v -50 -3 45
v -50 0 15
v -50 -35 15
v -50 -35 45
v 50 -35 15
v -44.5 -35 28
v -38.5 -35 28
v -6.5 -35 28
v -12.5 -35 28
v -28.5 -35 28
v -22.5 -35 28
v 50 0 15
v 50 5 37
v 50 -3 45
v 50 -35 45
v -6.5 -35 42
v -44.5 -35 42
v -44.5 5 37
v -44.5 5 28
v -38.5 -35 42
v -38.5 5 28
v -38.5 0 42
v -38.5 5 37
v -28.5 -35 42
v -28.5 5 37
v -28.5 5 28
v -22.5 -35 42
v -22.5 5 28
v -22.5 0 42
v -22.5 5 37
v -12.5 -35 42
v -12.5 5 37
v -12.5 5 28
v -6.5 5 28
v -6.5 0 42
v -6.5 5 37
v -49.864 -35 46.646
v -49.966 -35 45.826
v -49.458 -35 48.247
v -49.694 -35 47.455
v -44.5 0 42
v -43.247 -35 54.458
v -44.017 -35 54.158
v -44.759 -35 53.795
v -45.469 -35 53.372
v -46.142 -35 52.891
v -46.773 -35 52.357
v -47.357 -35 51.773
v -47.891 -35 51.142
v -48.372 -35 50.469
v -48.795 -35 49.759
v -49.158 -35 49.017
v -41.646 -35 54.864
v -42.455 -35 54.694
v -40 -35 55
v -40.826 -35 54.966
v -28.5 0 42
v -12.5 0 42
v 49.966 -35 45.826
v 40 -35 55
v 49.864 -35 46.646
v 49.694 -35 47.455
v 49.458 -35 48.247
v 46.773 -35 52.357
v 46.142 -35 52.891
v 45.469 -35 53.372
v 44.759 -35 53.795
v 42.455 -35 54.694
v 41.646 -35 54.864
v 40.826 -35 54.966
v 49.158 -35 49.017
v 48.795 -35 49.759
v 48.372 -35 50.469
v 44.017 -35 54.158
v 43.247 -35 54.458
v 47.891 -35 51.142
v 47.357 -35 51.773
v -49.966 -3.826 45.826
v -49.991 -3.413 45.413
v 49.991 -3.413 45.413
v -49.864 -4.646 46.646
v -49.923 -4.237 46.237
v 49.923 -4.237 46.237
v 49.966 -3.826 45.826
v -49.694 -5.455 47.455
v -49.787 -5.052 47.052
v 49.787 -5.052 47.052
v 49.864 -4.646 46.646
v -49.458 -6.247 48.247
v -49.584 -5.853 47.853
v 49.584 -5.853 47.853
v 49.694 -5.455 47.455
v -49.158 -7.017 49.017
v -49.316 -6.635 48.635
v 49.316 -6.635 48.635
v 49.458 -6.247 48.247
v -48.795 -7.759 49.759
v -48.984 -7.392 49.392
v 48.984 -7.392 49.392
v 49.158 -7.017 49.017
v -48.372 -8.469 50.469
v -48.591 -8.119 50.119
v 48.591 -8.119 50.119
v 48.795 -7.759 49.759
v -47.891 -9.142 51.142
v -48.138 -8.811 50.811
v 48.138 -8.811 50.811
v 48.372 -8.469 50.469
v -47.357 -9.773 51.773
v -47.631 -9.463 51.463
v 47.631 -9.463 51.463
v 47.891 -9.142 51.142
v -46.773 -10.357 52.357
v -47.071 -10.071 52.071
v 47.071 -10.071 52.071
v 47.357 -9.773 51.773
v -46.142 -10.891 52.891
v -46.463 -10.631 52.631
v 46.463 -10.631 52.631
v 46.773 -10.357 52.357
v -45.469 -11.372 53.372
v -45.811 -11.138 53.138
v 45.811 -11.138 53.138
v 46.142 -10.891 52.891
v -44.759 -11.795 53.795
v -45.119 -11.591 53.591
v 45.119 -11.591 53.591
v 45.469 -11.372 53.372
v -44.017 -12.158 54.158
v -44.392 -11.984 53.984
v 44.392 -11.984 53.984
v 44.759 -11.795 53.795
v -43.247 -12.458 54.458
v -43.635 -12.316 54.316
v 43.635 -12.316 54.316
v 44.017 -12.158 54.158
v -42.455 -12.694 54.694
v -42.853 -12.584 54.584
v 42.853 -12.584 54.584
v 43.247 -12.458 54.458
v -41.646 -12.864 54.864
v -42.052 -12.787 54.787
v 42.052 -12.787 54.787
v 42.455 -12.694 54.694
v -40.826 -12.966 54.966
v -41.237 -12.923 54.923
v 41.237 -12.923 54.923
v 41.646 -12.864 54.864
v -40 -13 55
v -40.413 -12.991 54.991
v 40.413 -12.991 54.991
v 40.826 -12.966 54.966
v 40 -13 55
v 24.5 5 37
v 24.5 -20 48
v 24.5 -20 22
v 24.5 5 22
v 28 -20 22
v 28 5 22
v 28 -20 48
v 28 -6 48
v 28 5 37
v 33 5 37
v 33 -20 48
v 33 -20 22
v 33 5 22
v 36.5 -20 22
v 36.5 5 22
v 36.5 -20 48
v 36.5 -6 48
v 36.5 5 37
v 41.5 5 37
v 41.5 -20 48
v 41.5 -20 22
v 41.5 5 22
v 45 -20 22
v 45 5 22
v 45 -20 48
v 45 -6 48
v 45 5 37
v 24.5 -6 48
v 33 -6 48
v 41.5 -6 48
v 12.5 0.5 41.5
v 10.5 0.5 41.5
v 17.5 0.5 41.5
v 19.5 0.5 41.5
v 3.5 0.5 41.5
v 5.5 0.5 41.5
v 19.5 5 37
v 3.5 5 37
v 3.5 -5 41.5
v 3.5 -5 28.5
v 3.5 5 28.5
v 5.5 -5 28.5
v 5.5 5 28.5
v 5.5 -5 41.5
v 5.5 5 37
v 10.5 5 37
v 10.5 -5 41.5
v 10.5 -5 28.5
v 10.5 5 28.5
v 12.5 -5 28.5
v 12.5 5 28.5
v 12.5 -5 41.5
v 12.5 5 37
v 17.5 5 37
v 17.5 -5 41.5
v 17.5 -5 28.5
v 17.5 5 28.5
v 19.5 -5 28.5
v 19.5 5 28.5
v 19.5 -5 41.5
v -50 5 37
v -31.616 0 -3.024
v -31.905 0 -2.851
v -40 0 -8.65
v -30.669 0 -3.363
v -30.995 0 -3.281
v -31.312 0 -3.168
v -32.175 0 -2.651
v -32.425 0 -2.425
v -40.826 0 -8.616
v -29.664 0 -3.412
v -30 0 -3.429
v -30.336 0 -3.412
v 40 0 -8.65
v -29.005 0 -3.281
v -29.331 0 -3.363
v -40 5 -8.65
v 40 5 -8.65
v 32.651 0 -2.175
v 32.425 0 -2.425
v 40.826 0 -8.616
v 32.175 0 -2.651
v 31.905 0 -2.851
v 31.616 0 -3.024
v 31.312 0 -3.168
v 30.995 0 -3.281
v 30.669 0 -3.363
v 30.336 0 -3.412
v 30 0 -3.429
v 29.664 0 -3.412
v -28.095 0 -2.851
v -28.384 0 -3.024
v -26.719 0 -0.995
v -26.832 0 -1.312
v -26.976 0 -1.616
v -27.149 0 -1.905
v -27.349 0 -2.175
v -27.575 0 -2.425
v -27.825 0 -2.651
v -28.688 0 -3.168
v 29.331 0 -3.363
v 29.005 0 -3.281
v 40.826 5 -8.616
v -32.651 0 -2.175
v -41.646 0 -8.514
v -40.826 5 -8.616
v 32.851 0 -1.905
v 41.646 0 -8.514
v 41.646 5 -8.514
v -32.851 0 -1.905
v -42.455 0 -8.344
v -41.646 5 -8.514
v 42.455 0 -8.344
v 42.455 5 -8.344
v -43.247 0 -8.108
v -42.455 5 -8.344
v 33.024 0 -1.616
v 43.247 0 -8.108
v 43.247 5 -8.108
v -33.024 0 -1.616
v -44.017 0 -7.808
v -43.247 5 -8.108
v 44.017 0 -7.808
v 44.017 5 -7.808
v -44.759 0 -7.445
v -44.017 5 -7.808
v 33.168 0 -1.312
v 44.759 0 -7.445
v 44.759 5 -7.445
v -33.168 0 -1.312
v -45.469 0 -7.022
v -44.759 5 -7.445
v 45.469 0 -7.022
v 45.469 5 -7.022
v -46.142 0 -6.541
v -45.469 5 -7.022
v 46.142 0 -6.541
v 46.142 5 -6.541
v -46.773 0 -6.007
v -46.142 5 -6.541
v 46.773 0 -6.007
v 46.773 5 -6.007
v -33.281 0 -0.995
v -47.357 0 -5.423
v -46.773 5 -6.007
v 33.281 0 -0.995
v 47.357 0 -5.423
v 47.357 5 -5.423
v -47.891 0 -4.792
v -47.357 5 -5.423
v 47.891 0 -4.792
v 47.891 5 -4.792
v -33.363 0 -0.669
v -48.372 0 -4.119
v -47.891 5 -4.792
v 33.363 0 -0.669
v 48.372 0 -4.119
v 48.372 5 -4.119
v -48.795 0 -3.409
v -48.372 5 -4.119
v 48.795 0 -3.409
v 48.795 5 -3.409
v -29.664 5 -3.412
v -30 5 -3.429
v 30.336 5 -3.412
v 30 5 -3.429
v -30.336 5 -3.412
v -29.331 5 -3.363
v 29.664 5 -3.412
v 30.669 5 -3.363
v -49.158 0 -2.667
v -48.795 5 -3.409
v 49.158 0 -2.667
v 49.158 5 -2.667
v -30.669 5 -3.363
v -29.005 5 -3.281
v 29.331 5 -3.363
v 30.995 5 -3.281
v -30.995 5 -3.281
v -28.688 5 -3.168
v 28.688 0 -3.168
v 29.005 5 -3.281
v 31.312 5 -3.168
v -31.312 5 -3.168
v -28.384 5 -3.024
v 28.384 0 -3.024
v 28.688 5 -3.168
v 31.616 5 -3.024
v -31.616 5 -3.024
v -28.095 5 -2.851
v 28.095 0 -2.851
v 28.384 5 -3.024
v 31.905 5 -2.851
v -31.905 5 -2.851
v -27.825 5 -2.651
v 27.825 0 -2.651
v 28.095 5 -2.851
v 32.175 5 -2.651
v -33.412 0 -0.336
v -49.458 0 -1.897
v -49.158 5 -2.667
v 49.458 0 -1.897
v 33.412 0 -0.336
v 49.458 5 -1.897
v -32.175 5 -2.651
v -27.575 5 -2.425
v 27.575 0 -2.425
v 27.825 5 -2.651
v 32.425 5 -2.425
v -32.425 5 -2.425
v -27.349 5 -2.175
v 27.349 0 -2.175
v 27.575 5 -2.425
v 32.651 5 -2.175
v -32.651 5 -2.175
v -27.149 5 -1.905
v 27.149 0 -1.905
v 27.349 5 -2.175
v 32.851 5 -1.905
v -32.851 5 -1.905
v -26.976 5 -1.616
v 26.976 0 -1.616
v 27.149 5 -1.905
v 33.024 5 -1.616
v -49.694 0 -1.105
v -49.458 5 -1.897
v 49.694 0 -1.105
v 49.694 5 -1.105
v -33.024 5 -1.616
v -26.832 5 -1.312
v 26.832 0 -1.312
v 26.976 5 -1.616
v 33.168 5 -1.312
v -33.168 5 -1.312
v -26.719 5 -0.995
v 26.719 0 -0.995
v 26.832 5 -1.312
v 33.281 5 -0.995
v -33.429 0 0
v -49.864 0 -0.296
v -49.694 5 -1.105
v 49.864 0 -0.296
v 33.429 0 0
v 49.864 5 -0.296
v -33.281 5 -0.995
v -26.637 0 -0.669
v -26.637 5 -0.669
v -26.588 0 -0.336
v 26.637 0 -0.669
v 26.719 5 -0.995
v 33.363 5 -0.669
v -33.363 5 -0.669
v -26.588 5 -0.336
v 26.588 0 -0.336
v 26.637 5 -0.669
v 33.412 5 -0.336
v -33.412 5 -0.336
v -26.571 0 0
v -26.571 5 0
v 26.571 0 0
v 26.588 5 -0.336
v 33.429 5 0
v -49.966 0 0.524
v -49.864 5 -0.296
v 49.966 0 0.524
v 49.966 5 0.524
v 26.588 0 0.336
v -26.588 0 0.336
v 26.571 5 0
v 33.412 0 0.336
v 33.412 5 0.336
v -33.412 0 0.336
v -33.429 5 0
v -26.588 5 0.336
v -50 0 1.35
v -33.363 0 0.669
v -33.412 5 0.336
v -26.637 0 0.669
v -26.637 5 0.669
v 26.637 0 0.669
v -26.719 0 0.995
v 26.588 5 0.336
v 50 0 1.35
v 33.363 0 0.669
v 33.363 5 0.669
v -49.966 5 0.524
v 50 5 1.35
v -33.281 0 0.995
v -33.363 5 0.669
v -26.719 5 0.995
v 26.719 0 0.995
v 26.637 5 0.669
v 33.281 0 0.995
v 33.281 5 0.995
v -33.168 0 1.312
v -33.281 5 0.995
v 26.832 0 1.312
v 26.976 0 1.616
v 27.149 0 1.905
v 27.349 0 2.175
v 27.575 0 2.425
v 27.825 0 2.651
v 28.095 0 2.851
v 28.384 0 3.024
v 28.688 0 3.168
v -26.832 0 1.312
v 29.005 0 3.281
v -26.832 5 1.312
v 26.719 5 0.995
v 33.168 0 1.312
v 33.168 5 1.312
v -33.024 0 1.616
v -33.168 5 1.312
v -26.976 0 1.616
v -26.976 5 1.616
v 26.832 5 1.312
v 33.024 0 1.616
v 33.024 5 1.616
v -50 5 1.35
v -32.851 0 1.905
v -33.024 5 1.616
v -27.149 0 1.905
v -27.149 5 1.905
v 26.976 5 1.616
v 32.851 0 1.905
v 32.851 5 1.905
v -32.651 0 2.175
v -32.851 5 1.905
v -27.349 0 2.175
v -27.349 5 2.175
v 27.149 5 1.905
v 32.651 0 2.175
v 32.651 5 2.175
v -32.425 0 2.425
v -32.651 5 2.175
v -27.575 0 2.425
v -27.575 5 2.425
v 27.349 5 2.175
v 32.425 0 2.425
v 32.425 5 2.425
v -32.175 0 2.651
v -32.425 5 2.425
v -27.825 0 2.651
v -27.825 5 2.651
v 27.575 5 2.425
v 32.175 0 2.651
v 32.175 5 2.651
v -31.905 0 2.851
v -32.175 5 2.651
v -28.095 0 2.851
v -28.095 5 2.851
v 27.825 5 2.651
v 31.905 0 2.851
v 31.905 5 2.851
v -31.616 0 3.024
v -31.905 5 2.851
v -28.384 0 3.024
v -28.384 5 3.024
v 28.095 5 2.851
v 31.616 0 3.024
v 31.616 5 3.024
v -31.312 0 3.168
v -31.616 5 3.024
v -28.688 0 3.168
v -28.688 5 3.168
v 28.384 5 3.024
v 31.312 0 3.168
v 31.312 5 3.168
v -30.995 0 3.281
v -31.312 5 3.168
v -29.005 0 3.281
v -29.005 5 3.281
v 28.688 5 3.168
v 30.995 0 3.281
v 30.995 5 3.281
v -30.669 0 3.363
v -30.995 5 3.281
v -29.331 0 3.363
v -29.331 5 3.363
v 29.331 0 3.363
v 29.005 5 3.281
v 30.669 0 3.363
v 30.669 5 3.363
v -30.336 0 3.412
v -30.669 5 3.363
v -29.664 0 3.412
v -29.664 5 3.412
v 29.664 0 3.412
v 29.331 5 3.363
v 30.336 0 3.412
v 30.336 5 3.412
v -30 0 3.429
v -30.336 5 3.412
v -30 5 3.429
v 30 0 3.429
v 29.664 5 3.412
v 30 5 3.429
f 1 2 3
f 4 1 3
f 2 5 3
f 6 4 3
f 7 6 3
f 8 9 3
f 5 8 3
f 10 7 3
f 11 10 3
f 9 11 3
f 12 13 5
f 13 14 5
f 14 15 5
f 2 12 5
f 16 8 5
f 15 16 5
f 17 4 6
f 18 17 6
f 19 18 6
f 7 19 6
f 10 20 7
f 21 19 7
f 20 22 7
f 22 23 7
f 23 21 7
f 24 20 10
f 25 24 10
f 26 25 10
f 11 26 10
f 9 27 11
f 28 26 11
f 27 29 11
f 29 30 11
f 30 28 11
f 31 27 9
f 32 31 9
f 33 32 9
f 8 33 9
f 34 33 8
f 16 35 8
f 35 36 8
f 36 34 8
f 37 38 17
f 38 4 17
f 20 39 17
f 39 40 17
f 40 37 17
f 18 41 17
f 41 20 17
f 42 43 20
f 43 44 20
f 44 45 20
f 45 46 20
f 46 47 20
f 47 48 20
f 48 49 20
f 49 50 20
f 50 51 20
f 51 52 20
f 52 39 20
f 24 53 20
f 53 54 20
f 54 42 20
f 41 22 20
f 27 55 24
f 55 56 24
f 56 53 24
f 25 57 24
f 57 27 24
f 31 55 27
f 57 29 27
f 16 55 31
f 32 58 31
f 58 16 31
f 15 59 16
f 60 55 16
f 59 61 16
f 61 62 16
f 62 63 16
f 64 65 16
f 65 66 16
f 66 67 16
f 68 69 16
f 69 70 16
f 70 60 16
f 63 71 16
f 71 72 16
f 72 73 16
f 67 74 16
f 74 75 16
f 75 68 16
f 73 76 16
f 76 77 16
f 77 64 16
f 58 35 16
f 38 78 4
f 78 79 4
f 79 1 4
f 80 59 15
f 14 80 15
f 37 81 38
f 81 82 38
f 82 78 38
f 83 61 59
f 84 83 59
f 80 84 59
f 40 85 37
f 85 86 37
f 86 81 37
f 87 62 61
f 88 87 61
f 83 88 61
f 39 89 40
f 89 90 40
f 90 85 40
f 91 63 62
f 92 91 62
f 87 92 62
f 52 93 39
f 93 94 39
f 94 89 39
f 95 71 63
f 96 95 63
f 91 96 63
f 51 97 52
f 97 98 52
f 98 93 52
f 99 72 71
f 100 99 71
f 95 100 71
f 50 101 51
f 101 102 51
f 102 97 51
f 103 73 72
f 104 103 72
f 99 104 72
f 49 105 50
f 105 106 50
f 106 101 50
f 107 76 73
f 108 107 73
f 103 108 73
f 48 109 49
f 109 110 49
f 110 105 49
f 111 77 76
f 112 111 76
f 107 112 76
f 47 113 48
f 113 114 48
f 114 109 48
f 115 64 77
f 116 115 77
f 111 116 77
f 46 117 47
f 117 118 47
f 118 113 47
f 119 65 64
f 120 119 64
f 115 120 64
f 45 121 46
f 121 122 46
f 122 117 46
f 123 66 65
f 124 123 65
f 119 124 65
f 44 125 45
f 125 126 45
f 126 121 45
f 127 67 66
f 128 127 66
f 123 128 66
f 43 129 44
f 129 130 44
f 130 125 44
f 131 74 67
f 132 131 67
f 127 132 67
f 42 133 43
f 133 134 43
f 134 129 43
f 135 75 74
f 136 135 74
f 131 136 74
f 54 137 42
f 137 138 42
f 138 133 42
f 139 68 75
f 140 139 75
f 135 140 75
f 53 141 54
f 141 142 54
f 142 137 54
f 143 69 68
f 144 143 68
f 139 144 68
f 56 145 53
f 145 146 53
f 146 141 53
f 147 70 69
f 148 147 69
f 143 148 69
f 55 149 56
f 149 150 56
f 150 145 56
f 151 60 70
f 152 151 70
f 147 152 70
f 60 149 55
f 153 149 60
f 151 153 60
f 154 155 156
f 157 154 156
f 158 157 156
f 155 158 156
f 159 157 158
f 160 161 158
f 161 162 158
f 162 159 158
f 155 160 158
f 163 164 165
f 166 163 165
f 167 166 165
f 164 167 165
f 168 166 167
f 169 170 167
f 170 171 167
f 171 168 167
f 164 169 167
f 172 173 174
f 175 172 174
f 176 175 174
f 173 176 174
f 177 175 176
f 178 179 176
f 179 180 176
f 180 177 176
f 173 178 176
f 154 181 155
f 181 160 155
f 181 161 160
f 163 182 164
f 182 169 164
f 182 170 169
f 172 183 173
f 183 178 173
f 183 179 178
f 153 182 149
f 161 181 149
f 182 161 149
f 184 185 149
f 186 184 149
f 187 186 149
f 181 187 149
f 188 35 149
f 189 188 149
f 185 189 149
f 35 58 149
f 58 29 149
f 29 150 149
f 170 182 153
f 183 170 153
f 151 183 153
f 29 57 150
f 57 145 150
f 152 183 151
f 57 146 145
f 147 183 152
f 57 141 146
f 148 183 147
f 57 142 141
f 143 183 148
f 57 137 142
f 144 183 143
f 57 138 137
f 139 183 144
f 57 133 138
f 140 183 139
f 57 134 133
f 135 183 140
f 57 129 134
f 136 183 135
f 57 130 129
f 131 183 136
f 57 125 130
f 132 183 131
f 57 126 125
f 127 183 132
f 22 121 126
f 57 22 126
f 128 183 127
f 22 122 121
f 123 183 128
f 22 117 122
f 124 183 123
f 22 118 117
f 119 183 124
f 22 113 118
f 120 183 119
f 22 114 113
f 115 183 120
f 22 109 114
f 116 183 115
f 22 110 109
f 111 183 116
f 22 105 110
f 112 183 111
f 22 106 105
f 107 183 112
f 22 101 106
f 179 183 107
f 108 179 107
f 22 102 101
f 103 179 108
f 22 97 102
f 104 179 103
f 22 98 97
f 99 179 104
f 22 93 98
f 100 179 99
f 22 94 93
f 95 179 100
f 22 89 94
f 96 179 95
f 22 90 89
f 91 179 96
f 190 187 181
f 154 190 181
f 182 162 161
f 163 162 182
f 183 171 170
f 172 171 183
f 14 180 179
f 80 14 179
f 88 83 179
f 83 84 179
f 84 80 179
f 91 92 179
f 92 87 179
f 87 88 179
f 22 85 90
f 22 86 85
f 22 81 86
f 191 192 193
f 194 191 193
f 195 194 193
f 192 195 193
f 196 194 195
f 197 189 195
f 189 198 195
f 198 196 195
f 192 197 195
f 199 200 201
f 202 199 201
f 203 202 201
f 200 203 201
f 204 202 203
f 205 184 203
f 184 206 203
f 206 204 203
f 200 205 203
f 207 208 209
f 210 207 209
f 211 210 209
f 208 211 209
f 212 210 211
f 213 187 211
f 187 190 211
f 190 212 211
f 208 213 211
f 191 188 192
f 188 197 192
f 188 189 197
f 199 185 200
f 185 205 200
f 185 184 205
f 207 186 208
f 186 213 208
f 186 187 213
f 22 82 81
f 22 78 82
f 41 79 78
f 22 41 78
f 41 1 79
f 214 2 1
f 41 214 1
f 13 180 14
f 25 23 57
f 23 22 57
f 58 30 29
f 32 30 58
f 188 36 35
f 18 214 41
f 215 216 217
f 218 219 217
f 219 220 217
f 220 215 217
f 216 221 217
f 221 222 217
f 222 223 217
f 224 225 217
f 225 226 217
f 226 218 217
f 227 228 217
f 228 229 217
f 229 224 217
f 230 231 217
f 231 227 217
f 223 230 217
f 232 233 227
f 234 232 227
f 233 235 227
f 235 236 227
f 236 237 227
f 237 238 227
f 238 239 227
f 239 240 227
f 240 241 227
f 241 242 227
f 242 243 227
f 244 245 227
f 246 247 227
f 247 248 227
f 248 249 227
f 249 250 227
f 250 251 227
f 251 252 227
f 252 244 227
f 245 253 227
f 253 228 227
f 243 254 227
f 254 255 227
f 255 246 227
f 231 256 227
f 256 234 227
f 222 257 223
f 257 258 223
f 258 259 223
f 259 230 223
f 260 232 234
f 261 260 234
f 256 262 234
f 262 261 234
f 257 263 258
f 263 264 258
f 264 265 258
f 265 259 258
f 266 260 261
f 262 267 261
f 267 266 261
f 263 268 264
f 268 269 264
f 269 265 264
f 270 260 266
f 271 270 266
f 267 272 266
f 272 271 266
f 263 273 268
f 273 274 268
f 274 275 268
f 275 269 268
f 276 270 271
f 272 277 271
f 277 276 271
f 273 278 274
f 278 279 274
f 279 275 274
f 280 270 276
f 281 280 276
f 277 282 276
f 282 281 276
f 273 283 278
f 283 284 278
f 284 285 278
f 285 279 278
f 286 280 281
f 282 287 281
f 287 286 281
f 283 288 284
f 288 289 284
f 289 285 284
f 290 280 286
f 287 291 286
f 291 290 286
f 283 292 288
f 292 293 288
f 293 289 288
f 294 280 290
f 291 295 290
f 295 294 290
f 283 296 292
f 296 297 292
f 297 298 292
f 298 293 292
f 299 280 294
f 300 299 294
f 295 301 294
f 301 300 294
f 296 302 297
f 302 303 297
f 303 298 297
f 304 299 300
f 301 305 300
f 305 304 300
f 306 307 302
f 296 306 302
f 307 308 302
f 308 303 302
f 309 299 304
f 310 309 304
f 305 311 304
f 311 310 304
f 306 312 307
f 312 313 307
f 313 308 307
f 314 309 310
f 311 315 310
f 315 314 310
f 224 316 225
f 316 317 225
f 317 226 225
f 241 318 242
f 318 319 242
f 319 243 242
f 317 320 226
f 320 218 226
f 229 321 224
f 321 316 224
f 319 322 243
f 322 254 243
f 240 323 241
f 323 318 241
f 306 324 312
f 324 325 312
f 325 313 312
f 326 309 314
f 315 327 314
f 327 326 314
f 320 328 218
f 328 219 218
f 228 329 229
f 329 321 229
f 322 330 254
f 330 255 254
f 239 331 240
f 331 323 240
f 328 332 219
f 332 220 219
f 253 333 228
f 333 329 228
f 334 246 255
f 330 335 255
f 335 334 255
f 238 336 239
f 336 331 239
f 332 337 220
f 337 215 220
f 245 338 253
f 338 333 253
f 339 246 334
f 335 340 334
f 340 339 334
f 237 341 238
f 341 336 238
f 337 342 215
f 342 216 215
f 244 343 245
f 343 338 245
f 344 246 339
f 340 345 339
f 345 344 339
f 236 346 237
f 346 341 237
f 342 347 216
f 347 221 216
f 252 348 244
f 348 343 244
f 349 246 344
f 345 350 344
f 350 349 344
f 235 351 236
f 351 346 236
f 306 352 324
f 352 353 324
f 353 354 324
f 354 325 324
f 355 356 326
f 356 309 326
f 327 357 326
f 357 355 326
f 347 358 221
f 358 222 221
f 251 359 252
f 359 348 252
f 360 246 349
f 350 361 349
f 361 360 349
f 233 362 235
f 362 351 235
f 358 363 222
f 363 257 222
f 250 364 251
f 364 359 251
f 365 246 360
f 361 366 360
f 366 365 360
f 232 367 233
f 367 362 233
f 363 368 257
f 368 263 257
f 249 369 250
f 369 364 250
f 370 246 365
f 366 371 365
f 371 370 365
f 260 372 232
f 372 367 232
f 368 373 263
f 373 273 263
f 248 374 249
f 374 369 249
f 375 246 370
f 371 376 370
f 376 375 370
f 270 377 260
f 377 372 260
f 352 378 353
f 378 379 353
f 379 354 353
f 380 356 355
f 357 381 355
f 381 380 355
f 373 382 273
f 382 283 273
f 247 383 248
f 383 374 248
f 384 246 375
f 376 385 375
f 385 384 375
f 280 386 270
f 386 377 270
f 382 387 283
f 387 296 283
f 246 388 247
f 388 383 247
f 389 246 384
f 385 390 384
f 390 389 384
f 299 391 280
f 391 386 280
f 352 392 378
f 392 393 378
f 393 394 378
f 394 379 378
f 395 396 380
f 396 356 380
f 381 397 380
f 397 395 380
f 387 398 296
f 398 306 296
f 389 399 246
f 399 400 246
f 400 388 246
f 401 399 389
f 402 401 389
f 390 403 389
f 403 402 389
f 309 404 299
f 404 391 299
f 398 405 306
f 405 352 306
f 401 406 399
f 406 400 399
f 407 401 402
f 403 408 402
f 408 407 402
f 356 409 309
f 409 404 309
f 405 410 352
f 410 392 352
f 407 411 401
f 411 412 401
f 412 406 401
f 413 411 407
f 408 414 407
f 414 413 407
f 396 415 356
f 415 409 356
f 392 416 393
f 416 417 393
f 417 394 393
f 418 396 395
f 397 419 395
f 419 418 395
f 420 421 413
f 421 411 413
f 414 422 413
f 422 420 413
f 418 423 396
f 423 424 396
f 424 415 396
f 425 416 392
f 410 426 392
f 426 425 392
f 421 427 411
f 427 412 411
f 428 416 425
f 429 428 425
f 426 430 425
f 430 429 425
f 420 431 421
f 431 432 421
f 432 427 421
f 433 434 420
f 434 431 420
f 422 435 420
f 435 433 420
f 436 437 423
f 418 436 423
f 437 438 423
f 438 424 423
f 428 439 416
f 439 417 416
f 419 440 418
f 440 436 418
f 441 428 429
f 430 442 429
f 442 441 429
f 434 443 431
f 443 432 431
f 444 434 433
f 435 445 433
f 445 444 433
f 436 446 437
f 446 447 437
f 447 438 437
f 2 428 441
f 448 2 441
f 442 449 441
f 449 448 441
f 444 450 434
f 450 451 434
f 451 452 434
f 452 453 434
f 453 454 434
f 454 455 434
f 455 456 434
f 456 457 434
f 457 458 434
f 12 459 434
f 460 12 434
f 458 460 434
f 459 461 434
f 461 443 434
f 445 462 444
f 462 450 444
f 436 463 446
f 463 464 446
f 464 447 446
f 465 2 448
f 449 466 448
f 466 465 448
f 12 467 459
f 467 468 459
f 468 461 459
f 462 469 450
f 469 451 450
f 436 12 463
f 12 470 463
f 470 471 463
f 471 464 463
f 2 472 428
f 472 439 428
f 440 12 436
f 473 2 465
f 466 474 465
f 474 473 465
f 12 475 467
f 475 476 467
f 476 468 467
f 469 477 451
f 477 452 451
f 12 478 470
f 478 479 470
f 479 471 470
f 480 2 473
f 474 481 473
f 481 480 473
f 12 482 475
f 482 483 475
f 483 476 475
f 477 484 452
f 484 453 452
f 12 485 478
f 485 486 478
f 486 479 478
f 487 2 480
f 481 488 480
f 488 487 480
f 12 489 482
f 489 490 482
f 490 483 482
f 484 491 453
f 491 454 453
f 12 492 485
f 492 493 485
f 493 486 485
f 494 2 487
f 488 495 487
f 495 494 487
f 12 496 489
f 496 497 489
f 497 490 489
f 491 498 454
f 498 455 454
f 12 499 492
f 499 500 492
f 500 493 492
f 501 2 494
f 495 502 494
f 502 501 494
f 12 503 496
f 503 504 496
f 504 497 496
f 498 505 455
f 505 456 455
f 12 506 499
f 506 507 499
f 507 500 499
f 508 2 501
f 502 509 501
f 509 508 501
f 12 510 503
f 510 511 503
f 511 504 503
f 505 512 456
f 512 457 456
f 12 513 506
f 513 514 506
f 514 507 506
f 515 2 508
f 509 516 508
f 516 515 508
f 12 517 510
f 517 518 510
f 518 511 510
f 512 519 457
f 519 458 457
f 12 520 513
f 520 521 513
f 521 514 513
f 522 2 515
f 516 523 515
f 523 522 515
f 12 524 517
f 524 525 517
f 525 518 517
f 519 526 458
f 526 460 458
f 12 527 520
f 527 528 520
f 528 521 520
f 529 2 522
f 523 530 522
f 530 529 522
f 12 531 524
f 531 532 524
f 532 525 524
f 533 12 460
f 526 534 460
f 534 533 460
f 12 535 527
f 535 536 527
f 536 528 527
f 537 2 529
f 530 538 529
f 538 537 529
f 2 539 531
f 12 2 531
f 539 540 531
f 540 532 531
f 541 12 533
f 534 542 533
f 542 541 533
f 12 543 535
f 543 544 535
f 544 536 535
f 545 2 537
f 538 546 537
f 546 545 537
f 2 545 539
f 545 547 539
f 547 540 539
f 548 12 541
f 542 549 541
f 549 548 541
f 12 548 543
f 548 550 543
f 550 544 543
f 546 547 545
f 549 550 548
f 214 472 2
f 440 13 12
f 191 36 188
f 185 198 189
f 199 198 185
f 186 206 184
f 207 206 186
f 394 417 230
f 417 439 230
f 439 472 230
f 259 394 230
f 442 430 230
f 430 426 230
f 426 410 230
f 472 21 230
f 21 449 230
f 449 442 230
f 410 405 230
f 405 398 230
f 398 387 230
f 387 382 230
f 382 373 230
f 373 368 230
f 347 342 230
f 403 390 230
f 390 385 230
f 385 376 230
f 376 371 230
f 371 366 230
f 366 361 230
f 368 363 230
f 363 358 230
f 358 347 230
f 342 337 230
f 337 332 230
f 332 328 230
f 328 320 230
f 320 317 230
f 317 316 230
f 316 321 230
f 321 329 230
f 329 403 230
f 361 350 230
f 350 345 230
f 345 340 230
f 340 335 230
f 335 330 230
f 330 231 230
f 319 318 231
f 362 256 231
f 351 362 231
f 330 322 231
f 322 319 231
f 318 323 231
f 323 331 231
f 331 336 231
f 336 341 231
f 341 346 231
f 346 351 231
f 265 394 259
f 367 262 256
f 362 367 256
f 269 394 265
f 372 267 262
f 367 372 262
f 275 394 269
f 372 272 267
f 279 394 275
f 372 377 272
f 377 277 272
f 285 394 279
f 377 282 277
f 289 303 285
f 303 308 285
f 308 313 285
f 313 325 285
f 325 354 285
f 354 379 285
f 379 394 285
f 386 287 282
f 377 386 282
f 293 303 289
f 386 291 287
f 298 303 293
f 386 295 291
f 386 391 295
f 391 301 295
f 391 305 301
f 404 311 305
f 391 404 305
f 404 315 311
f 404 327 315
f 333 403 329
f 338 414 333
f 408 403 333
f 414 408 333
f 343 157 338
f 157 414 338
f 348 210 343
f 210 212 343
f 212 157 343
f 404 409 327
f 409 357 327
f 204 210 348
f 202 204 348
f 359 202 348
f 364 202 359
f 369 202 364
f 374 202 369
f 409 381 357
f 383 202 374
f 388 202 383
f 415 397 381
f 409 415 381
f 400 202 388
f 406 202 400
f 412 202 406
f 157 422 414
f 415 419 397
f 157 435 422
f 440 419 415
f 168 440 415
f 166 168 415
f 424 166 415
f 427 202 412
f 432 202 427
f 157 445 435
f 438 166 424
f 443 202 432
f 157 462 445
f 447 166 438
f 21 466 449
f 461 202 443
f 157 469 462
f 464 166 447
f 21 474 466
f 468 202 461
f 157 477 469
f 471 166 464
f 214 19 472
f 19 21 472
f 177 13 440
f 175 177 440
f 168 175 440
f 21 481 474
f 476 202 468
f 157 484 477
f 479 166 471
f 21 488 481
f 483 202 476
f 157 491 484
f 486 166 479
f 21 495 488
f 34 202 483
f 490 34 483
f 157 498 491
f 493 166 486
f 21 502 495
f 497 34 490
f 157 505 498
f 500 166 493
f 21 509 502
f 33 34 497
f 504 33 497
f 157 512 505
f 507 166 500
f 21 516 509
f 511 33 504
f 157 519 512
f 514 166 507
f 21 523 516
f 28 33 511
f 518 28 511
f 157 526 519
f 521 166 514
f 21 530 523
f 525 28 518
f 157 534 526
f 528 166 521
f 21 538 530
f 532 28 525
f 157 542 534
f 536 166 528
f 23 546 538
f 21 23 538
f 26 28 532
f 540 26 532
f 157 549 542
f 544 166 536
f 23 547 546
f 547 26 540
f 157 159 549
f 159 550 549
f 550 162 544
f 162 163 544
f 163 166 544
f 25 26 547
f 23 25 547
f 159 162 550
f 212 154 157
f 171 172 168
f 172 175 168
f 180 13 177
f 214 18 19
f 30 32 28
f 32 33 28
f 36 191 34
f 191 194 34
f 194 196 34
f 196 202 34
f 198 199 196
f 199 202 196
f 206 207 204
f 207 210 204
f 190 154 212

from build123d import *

# Parameters (mm, degrees)
SKETCH1_W           = 100
SKETCH1_H           = 30
BOSS_EXTRUDE1_DEPTH = 5
SKETCH2_W           = 100
SKETCH2_H           = 40
BOSS_EXTRUDE2_DEPTH = 40
SKETCH3_W           = 3.5
SKETCH3_H           = 26
CUT_EXTRUDE1_DEPTH  = 25
SKETCH4_W           = 2
SKETCH4_H           = 13
CUT_EXTRUDE2_DEPTH  = 10
SKETCH5_W           = 6
SKETCH5_H           = 14
CUT_EXTRUDE3_DEPTH  = 85.409715081
CHAMFER1_SIZE       = 18
SKETCH6_R           = 3.429
CUT_EXTRUDE4_DEPTH  = 85.409715081
SKETCH7_W           = 100
SKETCH7_H           = 6.35
CUT_EXTRUDE5_DEPTH  = 85.409715081
FILLET1_R           = 10


with BuildPart() as part:
    # Sketch1 → Boss-Extrude1 (new body)
    with BuildSketch(Plane(origin=(0, 0, 0), x_dir=(1, 0, 0), z_dir=(0, 1, 0))):
        Rectangle(SKETCH1_W, SKETCH1_H)
    extrude(amount=BOSS_EXTRUDE1_DEPTH)

    # Sketch2 → Boss-Extrude2 (add)
    with BuildSketch(Plane.XY.offset(15)):
        with Locations((0, -15)):
            Rectangle(SKETCH2_W, SKETCH2_H)
    extrude(amount=BOSS_EXTRUDE2_DEPTH)

    # Sketch3 → Cut-Extrude1 (cut)
    with BuildSketch(Plane(origin=(0, 5, 0), x_dir=(1, 0, 0), z_dir=(0, 1, 0))):
        with Locations((43.25, -35)):
            Rectangle(SKETCH3_W, SKETCH3_H)
        with Locations((34.75, -35)):
            Rectangle(SKETCH3_W, SKETCH3_H)
        with Locations((26.25, -35)):
            Rectangle(SKETCH3_W, SKETCH3_H)
    extrude(amount=-CUT_EXTRUDE1_DEPTH, mode=Mode.SUBTRACT)

    # Sketch4 → Cut-Extrude2 (cut)
    with BuildSketch(Plane(origin=(0, 5, 0), x_dir=(1, 0, 0), z_dir=(0, 1, 0))):
        with Locations((18.5, -35)):
            Rectangle(SKETCH4_W, SKETCH4_H)
        with Locations((11.5, -35)):
            Rectangle(SKETCH4_W, SKETCH4_H)
        with Locations((4.5, -35)):
            Rectangle(SKETCH4_W, SKETCH4_H)
    extrude(amount=-CUT_EXTRUDE2_DEPTH, mode=Mode.SUBTRACT)

    # Sketch5 → Cut-Extrude3 (cut, through all)
    with BuildSketch(Plane(origin=(0, 5, 0), x_dir=(1, 0, 0), z_dir=(0, 1, 0))):
        with Locations((-9.5, -35)):
            Rectangle(SKETCH5_W, SKETCH5_H)
        with Locations((-25.5, -35)):
            Rectangle(SKETCH5_W, SKETCH5_H)
        with Locations((-41.5, -35)):
            Rectangle(SKETCH5_W, SKETCH5_H)
    extrude(amount=-CUT_EXTRUDE3_DEPTH, mode=Mode.SUBTRACT)

    # Chamfer1
    # the kernel refuses this chamfer: 18 mm, written as the material it takes off along each edge
    with BuildSketch(Plane(origin=(-96.290293783, 5, 55), x_dir=(0, -0.9996219169112966, 0.02749587661058639), z_dir=(1, 0, 0))) as chamfer1_piece_1:
        Polygon((CHAMFER1_SIZE * 0.999621916911, CHAMFER1_SIZE * 0.0274958766106), (-CHAMFER1_SIZE * 0.0274958766106, CHAMFER1_SIZE * 0.999621916911), (0, 0), align=None)
    extrude(amount=192.580587567, mode=Mode.SUBTRACT)

    # Sketch6 → Cut-Extrude4 (cut, through all)
    with BuildSketch(Plane(origin=(0, 5, 0), x_dir=(1, 0, 0), z_dir=(0, 1, 0))):
        with Locations(Location((-30, 0, 0), (0, 0, 270))):
            Circle(SKETCH6_R)
        with Locations(Location((30, 0, 0), (0, 0, 270))):
            Circle(SKETCH6_R)
    extrude(amount=-CUT_EXTRUDE4_DEPTH, mode=Mode.SUBTRACT)

    # Sketch7 → Cut-Extrude5 (cut, through all)
    with BuildSketch(Plane(origin=(0, 5, 0), x_dir=(1, 0, 0), z_dir=(0, 1, 0))):
        with Locations((0, 11.825)):
            Rectangle(SKETCH7_W, SKETCH7_H)
    extrude(amount=-CUT_EXTRUDE5_DEPTH, mode=Mode.SUBTRACT)

    # Fillet1
    fillet1_edges = [part.edges().sort_by_distance(p)[0] for p in [
        (-50, -24, 55),
        (50, -24, 55),
        (-50, 2.5, -8.65),
        (50, 2.5, -8.65),
    ]]
    fillet(fillet1_edges, radius=FILLET1_R)


solid = part.part
